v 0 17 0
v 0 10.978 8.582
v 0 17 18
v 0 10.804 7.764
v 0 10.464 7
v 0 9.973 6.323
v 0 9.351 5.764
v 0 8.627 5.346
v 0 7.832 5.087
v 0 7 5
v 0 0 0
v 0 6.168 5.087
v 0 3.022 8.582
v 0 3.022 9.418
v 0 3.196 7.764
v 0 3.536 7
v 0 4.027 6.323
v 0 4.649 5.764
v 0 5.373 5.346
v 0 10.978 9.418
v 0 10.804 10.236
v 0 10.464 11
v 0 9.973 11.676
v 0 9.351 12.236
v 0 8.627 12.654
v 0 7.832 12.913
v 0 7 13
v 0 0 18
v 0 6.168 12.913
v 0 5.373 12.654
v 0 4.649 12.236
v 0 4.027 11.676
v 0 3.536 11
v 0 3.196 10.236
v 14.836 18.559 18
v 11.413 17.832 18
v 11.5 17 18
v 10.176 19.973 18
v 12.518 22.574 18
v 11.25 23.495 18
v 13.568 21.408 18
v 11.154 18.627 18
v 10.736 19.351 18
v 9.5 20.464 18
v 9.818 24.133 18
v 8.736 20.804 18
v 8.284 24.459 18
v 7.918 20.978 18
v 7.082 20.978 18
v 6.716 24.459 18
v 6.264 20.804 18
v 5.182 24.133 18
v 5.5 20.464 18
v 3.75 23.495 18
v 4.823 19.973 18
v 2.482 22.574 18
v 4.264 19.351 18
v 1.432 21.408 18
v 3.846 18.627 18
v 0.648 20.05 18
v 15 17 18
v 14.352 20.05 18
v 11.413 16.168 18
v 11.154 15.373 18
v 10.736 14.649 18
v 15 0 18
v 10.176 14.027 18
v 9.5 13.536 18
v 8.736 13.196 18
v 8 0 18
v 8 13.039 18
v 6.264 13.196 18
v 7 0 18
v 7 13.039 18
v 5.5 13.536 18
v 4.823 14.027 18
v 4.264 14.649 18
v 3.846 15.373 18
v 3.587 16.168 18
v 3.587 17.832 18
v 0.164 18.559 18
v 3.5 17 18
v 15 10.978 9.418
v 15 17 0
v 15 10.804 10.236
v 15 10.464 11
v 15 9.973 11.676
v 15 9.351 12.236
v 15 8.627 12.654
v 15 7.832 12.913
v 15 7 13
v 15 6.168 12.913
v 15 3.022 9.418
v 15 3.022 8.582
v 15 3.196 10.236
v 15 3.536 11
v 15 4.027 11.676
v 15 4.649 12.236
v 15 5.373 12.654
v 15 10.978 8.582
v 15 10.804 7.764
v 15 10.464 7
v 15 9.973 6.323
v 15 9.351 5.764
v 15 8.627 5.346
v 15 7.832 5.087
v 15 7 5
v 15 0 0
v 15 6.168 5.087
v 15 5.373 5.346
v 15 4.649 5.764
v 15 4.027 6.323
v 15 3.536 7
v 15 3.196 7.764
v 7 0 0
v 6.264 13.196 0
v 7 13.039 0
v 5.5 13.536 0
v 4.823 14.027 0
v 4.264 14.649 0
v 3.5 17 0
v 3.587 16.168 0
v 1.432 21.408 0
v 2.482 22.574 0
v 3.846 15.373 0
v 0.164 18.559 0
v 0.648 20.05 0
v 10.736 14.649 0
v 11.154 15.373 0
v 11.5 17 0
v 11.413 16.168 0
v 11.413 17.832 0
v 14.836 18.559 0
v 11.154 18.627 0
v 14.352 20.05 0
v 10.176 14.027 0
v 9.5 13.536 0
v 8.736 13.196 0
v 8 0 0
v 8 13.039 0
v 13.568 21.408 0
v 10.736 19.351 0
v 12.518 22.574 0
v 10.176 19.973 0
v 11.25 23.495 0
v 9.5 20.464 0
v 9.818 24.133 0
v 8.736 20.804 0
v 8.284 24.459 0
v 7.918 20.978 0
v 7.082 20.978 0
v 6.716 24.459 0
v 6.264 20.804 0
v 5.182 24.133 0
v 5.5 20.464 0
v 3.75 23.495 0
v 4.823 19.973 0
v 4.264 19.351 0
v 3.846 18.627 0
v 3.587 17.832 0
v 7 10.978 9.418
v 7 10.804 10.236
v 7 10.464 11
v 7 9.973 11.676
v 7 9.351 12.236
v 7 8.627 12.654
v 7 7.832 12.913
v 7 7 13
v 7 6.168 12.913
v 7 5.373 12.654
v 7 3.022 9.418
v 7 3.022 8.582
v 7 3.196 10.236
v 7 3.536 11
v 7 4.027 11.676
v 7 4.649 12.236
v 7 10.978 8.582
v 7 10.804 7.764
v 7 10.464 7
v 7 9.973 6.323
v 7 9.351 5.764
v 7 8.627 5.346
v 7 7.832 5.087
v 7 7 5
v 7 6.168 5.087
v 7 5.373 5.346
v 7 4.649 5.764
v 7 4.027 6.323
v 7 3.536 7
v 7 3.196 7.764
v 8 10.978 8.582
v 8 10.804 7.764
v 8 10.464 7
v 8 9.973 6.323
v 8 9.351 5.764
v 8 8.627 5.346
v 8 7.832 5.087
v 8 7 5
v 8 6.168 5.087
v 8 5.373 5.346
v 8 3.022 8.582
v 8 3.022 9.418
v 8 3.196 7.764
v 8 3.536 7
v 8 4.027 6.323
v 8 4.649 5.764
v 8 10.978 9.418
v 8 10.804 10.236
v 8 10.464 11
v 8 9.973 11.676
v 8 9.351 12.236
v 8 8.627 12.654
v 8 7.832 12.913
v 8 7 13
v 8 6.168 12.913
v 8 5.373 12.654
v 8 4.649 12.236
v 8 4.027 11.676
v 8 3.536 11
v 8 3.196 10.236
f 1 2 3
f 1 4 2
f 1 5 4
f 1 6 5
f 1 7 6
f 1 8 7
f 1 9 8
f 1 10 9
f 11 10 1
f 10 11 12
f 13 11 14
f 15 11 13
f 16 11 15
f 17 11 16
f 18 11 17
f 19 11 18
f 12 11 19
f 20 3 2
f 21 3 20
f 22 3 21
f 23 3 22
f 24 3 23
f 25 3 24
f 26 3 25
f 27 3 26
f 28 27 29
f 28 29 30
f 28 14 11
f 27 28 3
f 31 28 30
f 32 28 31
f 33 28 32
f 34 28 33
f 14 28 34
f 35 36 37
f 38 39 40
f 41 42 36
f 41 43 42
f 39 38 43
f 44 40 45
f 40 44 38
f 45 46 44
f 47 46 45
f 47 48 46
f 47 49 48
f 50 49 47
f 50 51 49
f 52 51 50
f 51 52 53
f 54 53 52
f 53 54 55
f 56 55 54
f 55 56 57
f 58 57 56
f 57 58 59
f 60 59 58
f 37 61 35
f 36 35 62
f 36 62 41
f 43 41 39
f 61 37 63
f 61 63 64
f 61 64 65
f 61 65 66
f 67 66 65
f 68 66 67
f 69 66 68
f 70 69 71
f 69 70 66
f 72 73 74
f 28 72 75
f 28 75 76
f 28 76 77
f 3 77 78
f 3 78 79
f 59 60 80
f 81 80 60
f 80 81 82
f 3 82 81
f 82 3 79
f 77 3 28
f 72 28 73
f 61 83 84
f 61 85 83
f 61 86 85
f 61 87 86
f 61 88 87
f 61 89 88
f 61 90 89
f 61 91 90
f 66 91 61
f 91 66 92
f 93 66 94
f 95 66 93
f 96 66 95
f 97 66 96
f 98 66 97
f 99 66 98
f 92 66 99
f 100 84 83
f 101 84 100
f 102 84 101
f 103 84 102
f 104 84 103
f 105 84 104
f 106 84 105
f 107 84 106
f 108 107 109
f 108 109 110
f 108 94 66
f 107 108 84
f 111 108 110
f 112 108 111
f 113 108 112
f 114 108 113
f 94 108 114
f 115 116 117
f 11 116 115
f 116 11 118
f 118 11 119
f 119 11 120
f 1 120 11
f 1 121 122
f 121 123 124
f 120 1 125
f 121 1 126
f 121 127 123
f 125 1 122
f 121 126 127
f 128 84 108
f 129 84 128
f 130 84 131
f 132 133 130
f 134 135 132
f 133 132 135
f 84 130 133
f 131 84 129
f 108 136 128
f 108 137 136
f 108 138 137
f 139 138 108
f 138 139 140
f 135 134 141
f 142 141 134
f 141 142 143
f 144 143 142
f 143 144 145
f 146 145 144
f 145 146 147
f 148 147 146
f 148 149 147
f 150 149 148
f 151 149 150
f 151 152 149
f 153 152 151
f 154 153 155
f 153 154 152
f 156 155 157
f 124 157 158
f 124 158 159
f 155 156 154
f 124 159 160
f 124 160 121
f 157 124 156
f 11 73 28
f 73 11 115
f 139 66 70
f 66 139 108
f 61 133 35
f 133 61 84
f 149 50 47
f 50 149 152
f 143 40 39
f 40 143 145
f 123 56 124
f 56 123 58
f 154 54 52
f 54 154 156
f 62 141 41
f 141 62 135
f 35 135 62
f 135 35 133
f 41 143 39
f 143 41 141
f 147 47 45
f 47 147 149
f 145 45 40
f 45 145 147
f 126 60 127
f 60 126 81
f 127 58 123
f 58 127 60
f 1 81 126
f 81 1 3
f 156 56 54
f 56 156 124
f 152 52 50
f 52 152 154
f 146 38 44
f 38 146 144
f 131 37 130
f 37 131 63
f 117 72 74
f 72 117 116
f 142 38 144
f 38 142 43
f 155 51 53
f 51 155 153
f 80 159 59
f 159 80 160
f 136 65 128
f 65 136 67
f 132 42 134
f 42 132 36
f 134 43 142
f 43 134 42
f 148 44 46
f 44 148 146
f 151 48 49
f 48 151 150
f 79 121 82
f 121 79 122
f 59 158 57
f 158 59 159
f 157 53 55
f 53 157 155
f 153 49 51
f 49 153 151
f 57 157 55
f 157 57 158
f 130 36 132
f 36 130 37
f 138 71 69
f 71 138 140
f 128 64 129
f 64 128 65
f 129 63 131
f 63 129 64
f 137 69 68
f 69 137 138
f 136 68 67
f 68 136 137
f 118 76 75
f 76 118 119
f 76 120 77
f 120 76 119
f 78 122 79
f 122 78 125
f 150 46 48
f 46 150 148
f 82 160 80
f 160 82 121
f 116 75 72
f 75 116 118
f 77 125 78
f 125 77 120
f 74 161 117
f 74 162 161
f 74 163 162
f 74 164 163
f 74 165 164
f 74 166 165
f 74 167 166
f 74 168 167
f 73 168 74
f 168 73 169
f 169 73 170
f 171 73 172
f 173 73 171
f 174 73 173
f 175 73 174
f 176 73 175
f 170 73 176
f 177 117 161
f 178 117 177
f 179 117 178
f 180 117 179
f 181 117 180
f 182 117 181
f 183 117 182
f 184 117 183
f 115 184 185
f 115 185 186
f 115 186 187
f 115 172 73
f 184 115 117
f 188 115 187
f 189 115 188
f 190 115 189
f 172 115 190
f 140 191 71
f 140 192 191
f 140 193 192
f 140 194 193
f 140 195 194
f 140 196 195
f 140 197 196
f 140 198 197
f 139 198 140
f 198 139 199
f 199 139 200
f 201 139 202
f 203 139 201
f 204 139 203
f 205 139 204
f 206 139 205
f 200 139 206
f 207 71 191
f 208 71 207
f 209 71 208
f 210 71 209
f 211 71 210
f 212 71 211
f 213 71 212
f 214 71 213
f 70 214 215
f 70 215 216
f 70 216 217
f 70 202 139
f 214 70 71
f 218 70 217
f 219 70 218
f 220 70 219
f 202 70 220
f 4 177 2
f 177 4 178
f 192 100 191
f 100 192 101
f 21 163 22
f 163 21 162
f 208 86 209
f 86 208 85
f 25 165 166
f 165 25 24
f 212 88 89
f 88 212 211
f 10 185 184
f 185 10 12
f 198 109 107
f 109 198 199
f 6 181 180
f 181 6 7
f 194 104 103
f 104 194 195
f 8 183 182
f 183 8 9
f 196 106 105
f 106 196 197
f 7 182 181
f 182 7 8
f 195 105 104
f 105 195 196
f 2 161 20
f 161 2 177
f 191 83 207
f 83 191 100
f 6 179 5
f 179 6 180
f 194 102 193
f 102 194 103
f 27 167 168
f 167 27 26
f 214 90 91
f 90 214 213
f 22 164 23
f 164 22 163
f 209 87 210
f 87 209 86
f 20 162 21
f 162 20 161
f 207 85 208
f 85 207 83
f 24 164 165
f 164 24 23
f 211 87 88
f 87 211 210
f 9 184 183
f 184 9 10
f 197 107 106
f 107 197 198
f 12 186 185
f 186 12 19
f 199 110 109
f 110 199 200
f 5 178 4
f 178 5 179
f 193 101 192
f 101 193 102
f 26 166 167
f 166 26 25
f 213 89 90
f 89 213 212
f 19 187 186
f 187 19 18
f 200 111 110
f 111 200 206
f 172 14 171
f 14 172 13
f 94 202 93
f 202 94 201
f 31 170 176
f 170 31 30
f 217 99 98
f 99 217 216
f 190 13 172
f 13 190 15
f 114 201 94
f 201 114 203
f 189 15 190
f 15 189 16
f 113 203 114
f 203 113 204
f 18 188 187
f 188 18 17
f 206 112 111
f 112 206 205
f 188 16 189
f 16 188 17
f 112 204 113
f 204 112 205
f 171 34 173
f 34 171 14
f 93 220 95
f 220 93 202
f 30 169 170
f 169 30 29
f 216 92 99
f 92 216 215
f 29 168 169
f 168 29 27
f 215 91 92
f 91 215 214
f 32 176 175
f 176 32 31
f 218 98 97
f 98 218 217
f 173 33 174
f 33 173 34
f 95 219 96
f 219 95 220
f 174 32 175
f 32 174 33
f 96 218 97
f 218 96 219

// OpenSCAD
// file: config.scad
/**
 * Глобальный конфигурационный файл
 */
// качество цилиндров
$fn=30;

// избегание совпадения граней
DELTA=0.1;

// толщина рамы
FRAME=15;
// main file
include <config.scad>

module frame_part01() {
difference() {
    union() {
        cube([15,17,18]);
        translate([7.5,17,0])cylinder(r=7.5, h=18);
    }
    translate([7.5,17,-DELTA])cylinder(r=4, h=18+DELTA*2);
    translate([7,-DELTA,-DELTA])cube([1,17+DELTA,18+DELTA*2]);
    translate([-DELTA,7,9])rotate([0,90,0])cylinder(r=4, h=15+DELTA*2);
}
}

frame_part01();
